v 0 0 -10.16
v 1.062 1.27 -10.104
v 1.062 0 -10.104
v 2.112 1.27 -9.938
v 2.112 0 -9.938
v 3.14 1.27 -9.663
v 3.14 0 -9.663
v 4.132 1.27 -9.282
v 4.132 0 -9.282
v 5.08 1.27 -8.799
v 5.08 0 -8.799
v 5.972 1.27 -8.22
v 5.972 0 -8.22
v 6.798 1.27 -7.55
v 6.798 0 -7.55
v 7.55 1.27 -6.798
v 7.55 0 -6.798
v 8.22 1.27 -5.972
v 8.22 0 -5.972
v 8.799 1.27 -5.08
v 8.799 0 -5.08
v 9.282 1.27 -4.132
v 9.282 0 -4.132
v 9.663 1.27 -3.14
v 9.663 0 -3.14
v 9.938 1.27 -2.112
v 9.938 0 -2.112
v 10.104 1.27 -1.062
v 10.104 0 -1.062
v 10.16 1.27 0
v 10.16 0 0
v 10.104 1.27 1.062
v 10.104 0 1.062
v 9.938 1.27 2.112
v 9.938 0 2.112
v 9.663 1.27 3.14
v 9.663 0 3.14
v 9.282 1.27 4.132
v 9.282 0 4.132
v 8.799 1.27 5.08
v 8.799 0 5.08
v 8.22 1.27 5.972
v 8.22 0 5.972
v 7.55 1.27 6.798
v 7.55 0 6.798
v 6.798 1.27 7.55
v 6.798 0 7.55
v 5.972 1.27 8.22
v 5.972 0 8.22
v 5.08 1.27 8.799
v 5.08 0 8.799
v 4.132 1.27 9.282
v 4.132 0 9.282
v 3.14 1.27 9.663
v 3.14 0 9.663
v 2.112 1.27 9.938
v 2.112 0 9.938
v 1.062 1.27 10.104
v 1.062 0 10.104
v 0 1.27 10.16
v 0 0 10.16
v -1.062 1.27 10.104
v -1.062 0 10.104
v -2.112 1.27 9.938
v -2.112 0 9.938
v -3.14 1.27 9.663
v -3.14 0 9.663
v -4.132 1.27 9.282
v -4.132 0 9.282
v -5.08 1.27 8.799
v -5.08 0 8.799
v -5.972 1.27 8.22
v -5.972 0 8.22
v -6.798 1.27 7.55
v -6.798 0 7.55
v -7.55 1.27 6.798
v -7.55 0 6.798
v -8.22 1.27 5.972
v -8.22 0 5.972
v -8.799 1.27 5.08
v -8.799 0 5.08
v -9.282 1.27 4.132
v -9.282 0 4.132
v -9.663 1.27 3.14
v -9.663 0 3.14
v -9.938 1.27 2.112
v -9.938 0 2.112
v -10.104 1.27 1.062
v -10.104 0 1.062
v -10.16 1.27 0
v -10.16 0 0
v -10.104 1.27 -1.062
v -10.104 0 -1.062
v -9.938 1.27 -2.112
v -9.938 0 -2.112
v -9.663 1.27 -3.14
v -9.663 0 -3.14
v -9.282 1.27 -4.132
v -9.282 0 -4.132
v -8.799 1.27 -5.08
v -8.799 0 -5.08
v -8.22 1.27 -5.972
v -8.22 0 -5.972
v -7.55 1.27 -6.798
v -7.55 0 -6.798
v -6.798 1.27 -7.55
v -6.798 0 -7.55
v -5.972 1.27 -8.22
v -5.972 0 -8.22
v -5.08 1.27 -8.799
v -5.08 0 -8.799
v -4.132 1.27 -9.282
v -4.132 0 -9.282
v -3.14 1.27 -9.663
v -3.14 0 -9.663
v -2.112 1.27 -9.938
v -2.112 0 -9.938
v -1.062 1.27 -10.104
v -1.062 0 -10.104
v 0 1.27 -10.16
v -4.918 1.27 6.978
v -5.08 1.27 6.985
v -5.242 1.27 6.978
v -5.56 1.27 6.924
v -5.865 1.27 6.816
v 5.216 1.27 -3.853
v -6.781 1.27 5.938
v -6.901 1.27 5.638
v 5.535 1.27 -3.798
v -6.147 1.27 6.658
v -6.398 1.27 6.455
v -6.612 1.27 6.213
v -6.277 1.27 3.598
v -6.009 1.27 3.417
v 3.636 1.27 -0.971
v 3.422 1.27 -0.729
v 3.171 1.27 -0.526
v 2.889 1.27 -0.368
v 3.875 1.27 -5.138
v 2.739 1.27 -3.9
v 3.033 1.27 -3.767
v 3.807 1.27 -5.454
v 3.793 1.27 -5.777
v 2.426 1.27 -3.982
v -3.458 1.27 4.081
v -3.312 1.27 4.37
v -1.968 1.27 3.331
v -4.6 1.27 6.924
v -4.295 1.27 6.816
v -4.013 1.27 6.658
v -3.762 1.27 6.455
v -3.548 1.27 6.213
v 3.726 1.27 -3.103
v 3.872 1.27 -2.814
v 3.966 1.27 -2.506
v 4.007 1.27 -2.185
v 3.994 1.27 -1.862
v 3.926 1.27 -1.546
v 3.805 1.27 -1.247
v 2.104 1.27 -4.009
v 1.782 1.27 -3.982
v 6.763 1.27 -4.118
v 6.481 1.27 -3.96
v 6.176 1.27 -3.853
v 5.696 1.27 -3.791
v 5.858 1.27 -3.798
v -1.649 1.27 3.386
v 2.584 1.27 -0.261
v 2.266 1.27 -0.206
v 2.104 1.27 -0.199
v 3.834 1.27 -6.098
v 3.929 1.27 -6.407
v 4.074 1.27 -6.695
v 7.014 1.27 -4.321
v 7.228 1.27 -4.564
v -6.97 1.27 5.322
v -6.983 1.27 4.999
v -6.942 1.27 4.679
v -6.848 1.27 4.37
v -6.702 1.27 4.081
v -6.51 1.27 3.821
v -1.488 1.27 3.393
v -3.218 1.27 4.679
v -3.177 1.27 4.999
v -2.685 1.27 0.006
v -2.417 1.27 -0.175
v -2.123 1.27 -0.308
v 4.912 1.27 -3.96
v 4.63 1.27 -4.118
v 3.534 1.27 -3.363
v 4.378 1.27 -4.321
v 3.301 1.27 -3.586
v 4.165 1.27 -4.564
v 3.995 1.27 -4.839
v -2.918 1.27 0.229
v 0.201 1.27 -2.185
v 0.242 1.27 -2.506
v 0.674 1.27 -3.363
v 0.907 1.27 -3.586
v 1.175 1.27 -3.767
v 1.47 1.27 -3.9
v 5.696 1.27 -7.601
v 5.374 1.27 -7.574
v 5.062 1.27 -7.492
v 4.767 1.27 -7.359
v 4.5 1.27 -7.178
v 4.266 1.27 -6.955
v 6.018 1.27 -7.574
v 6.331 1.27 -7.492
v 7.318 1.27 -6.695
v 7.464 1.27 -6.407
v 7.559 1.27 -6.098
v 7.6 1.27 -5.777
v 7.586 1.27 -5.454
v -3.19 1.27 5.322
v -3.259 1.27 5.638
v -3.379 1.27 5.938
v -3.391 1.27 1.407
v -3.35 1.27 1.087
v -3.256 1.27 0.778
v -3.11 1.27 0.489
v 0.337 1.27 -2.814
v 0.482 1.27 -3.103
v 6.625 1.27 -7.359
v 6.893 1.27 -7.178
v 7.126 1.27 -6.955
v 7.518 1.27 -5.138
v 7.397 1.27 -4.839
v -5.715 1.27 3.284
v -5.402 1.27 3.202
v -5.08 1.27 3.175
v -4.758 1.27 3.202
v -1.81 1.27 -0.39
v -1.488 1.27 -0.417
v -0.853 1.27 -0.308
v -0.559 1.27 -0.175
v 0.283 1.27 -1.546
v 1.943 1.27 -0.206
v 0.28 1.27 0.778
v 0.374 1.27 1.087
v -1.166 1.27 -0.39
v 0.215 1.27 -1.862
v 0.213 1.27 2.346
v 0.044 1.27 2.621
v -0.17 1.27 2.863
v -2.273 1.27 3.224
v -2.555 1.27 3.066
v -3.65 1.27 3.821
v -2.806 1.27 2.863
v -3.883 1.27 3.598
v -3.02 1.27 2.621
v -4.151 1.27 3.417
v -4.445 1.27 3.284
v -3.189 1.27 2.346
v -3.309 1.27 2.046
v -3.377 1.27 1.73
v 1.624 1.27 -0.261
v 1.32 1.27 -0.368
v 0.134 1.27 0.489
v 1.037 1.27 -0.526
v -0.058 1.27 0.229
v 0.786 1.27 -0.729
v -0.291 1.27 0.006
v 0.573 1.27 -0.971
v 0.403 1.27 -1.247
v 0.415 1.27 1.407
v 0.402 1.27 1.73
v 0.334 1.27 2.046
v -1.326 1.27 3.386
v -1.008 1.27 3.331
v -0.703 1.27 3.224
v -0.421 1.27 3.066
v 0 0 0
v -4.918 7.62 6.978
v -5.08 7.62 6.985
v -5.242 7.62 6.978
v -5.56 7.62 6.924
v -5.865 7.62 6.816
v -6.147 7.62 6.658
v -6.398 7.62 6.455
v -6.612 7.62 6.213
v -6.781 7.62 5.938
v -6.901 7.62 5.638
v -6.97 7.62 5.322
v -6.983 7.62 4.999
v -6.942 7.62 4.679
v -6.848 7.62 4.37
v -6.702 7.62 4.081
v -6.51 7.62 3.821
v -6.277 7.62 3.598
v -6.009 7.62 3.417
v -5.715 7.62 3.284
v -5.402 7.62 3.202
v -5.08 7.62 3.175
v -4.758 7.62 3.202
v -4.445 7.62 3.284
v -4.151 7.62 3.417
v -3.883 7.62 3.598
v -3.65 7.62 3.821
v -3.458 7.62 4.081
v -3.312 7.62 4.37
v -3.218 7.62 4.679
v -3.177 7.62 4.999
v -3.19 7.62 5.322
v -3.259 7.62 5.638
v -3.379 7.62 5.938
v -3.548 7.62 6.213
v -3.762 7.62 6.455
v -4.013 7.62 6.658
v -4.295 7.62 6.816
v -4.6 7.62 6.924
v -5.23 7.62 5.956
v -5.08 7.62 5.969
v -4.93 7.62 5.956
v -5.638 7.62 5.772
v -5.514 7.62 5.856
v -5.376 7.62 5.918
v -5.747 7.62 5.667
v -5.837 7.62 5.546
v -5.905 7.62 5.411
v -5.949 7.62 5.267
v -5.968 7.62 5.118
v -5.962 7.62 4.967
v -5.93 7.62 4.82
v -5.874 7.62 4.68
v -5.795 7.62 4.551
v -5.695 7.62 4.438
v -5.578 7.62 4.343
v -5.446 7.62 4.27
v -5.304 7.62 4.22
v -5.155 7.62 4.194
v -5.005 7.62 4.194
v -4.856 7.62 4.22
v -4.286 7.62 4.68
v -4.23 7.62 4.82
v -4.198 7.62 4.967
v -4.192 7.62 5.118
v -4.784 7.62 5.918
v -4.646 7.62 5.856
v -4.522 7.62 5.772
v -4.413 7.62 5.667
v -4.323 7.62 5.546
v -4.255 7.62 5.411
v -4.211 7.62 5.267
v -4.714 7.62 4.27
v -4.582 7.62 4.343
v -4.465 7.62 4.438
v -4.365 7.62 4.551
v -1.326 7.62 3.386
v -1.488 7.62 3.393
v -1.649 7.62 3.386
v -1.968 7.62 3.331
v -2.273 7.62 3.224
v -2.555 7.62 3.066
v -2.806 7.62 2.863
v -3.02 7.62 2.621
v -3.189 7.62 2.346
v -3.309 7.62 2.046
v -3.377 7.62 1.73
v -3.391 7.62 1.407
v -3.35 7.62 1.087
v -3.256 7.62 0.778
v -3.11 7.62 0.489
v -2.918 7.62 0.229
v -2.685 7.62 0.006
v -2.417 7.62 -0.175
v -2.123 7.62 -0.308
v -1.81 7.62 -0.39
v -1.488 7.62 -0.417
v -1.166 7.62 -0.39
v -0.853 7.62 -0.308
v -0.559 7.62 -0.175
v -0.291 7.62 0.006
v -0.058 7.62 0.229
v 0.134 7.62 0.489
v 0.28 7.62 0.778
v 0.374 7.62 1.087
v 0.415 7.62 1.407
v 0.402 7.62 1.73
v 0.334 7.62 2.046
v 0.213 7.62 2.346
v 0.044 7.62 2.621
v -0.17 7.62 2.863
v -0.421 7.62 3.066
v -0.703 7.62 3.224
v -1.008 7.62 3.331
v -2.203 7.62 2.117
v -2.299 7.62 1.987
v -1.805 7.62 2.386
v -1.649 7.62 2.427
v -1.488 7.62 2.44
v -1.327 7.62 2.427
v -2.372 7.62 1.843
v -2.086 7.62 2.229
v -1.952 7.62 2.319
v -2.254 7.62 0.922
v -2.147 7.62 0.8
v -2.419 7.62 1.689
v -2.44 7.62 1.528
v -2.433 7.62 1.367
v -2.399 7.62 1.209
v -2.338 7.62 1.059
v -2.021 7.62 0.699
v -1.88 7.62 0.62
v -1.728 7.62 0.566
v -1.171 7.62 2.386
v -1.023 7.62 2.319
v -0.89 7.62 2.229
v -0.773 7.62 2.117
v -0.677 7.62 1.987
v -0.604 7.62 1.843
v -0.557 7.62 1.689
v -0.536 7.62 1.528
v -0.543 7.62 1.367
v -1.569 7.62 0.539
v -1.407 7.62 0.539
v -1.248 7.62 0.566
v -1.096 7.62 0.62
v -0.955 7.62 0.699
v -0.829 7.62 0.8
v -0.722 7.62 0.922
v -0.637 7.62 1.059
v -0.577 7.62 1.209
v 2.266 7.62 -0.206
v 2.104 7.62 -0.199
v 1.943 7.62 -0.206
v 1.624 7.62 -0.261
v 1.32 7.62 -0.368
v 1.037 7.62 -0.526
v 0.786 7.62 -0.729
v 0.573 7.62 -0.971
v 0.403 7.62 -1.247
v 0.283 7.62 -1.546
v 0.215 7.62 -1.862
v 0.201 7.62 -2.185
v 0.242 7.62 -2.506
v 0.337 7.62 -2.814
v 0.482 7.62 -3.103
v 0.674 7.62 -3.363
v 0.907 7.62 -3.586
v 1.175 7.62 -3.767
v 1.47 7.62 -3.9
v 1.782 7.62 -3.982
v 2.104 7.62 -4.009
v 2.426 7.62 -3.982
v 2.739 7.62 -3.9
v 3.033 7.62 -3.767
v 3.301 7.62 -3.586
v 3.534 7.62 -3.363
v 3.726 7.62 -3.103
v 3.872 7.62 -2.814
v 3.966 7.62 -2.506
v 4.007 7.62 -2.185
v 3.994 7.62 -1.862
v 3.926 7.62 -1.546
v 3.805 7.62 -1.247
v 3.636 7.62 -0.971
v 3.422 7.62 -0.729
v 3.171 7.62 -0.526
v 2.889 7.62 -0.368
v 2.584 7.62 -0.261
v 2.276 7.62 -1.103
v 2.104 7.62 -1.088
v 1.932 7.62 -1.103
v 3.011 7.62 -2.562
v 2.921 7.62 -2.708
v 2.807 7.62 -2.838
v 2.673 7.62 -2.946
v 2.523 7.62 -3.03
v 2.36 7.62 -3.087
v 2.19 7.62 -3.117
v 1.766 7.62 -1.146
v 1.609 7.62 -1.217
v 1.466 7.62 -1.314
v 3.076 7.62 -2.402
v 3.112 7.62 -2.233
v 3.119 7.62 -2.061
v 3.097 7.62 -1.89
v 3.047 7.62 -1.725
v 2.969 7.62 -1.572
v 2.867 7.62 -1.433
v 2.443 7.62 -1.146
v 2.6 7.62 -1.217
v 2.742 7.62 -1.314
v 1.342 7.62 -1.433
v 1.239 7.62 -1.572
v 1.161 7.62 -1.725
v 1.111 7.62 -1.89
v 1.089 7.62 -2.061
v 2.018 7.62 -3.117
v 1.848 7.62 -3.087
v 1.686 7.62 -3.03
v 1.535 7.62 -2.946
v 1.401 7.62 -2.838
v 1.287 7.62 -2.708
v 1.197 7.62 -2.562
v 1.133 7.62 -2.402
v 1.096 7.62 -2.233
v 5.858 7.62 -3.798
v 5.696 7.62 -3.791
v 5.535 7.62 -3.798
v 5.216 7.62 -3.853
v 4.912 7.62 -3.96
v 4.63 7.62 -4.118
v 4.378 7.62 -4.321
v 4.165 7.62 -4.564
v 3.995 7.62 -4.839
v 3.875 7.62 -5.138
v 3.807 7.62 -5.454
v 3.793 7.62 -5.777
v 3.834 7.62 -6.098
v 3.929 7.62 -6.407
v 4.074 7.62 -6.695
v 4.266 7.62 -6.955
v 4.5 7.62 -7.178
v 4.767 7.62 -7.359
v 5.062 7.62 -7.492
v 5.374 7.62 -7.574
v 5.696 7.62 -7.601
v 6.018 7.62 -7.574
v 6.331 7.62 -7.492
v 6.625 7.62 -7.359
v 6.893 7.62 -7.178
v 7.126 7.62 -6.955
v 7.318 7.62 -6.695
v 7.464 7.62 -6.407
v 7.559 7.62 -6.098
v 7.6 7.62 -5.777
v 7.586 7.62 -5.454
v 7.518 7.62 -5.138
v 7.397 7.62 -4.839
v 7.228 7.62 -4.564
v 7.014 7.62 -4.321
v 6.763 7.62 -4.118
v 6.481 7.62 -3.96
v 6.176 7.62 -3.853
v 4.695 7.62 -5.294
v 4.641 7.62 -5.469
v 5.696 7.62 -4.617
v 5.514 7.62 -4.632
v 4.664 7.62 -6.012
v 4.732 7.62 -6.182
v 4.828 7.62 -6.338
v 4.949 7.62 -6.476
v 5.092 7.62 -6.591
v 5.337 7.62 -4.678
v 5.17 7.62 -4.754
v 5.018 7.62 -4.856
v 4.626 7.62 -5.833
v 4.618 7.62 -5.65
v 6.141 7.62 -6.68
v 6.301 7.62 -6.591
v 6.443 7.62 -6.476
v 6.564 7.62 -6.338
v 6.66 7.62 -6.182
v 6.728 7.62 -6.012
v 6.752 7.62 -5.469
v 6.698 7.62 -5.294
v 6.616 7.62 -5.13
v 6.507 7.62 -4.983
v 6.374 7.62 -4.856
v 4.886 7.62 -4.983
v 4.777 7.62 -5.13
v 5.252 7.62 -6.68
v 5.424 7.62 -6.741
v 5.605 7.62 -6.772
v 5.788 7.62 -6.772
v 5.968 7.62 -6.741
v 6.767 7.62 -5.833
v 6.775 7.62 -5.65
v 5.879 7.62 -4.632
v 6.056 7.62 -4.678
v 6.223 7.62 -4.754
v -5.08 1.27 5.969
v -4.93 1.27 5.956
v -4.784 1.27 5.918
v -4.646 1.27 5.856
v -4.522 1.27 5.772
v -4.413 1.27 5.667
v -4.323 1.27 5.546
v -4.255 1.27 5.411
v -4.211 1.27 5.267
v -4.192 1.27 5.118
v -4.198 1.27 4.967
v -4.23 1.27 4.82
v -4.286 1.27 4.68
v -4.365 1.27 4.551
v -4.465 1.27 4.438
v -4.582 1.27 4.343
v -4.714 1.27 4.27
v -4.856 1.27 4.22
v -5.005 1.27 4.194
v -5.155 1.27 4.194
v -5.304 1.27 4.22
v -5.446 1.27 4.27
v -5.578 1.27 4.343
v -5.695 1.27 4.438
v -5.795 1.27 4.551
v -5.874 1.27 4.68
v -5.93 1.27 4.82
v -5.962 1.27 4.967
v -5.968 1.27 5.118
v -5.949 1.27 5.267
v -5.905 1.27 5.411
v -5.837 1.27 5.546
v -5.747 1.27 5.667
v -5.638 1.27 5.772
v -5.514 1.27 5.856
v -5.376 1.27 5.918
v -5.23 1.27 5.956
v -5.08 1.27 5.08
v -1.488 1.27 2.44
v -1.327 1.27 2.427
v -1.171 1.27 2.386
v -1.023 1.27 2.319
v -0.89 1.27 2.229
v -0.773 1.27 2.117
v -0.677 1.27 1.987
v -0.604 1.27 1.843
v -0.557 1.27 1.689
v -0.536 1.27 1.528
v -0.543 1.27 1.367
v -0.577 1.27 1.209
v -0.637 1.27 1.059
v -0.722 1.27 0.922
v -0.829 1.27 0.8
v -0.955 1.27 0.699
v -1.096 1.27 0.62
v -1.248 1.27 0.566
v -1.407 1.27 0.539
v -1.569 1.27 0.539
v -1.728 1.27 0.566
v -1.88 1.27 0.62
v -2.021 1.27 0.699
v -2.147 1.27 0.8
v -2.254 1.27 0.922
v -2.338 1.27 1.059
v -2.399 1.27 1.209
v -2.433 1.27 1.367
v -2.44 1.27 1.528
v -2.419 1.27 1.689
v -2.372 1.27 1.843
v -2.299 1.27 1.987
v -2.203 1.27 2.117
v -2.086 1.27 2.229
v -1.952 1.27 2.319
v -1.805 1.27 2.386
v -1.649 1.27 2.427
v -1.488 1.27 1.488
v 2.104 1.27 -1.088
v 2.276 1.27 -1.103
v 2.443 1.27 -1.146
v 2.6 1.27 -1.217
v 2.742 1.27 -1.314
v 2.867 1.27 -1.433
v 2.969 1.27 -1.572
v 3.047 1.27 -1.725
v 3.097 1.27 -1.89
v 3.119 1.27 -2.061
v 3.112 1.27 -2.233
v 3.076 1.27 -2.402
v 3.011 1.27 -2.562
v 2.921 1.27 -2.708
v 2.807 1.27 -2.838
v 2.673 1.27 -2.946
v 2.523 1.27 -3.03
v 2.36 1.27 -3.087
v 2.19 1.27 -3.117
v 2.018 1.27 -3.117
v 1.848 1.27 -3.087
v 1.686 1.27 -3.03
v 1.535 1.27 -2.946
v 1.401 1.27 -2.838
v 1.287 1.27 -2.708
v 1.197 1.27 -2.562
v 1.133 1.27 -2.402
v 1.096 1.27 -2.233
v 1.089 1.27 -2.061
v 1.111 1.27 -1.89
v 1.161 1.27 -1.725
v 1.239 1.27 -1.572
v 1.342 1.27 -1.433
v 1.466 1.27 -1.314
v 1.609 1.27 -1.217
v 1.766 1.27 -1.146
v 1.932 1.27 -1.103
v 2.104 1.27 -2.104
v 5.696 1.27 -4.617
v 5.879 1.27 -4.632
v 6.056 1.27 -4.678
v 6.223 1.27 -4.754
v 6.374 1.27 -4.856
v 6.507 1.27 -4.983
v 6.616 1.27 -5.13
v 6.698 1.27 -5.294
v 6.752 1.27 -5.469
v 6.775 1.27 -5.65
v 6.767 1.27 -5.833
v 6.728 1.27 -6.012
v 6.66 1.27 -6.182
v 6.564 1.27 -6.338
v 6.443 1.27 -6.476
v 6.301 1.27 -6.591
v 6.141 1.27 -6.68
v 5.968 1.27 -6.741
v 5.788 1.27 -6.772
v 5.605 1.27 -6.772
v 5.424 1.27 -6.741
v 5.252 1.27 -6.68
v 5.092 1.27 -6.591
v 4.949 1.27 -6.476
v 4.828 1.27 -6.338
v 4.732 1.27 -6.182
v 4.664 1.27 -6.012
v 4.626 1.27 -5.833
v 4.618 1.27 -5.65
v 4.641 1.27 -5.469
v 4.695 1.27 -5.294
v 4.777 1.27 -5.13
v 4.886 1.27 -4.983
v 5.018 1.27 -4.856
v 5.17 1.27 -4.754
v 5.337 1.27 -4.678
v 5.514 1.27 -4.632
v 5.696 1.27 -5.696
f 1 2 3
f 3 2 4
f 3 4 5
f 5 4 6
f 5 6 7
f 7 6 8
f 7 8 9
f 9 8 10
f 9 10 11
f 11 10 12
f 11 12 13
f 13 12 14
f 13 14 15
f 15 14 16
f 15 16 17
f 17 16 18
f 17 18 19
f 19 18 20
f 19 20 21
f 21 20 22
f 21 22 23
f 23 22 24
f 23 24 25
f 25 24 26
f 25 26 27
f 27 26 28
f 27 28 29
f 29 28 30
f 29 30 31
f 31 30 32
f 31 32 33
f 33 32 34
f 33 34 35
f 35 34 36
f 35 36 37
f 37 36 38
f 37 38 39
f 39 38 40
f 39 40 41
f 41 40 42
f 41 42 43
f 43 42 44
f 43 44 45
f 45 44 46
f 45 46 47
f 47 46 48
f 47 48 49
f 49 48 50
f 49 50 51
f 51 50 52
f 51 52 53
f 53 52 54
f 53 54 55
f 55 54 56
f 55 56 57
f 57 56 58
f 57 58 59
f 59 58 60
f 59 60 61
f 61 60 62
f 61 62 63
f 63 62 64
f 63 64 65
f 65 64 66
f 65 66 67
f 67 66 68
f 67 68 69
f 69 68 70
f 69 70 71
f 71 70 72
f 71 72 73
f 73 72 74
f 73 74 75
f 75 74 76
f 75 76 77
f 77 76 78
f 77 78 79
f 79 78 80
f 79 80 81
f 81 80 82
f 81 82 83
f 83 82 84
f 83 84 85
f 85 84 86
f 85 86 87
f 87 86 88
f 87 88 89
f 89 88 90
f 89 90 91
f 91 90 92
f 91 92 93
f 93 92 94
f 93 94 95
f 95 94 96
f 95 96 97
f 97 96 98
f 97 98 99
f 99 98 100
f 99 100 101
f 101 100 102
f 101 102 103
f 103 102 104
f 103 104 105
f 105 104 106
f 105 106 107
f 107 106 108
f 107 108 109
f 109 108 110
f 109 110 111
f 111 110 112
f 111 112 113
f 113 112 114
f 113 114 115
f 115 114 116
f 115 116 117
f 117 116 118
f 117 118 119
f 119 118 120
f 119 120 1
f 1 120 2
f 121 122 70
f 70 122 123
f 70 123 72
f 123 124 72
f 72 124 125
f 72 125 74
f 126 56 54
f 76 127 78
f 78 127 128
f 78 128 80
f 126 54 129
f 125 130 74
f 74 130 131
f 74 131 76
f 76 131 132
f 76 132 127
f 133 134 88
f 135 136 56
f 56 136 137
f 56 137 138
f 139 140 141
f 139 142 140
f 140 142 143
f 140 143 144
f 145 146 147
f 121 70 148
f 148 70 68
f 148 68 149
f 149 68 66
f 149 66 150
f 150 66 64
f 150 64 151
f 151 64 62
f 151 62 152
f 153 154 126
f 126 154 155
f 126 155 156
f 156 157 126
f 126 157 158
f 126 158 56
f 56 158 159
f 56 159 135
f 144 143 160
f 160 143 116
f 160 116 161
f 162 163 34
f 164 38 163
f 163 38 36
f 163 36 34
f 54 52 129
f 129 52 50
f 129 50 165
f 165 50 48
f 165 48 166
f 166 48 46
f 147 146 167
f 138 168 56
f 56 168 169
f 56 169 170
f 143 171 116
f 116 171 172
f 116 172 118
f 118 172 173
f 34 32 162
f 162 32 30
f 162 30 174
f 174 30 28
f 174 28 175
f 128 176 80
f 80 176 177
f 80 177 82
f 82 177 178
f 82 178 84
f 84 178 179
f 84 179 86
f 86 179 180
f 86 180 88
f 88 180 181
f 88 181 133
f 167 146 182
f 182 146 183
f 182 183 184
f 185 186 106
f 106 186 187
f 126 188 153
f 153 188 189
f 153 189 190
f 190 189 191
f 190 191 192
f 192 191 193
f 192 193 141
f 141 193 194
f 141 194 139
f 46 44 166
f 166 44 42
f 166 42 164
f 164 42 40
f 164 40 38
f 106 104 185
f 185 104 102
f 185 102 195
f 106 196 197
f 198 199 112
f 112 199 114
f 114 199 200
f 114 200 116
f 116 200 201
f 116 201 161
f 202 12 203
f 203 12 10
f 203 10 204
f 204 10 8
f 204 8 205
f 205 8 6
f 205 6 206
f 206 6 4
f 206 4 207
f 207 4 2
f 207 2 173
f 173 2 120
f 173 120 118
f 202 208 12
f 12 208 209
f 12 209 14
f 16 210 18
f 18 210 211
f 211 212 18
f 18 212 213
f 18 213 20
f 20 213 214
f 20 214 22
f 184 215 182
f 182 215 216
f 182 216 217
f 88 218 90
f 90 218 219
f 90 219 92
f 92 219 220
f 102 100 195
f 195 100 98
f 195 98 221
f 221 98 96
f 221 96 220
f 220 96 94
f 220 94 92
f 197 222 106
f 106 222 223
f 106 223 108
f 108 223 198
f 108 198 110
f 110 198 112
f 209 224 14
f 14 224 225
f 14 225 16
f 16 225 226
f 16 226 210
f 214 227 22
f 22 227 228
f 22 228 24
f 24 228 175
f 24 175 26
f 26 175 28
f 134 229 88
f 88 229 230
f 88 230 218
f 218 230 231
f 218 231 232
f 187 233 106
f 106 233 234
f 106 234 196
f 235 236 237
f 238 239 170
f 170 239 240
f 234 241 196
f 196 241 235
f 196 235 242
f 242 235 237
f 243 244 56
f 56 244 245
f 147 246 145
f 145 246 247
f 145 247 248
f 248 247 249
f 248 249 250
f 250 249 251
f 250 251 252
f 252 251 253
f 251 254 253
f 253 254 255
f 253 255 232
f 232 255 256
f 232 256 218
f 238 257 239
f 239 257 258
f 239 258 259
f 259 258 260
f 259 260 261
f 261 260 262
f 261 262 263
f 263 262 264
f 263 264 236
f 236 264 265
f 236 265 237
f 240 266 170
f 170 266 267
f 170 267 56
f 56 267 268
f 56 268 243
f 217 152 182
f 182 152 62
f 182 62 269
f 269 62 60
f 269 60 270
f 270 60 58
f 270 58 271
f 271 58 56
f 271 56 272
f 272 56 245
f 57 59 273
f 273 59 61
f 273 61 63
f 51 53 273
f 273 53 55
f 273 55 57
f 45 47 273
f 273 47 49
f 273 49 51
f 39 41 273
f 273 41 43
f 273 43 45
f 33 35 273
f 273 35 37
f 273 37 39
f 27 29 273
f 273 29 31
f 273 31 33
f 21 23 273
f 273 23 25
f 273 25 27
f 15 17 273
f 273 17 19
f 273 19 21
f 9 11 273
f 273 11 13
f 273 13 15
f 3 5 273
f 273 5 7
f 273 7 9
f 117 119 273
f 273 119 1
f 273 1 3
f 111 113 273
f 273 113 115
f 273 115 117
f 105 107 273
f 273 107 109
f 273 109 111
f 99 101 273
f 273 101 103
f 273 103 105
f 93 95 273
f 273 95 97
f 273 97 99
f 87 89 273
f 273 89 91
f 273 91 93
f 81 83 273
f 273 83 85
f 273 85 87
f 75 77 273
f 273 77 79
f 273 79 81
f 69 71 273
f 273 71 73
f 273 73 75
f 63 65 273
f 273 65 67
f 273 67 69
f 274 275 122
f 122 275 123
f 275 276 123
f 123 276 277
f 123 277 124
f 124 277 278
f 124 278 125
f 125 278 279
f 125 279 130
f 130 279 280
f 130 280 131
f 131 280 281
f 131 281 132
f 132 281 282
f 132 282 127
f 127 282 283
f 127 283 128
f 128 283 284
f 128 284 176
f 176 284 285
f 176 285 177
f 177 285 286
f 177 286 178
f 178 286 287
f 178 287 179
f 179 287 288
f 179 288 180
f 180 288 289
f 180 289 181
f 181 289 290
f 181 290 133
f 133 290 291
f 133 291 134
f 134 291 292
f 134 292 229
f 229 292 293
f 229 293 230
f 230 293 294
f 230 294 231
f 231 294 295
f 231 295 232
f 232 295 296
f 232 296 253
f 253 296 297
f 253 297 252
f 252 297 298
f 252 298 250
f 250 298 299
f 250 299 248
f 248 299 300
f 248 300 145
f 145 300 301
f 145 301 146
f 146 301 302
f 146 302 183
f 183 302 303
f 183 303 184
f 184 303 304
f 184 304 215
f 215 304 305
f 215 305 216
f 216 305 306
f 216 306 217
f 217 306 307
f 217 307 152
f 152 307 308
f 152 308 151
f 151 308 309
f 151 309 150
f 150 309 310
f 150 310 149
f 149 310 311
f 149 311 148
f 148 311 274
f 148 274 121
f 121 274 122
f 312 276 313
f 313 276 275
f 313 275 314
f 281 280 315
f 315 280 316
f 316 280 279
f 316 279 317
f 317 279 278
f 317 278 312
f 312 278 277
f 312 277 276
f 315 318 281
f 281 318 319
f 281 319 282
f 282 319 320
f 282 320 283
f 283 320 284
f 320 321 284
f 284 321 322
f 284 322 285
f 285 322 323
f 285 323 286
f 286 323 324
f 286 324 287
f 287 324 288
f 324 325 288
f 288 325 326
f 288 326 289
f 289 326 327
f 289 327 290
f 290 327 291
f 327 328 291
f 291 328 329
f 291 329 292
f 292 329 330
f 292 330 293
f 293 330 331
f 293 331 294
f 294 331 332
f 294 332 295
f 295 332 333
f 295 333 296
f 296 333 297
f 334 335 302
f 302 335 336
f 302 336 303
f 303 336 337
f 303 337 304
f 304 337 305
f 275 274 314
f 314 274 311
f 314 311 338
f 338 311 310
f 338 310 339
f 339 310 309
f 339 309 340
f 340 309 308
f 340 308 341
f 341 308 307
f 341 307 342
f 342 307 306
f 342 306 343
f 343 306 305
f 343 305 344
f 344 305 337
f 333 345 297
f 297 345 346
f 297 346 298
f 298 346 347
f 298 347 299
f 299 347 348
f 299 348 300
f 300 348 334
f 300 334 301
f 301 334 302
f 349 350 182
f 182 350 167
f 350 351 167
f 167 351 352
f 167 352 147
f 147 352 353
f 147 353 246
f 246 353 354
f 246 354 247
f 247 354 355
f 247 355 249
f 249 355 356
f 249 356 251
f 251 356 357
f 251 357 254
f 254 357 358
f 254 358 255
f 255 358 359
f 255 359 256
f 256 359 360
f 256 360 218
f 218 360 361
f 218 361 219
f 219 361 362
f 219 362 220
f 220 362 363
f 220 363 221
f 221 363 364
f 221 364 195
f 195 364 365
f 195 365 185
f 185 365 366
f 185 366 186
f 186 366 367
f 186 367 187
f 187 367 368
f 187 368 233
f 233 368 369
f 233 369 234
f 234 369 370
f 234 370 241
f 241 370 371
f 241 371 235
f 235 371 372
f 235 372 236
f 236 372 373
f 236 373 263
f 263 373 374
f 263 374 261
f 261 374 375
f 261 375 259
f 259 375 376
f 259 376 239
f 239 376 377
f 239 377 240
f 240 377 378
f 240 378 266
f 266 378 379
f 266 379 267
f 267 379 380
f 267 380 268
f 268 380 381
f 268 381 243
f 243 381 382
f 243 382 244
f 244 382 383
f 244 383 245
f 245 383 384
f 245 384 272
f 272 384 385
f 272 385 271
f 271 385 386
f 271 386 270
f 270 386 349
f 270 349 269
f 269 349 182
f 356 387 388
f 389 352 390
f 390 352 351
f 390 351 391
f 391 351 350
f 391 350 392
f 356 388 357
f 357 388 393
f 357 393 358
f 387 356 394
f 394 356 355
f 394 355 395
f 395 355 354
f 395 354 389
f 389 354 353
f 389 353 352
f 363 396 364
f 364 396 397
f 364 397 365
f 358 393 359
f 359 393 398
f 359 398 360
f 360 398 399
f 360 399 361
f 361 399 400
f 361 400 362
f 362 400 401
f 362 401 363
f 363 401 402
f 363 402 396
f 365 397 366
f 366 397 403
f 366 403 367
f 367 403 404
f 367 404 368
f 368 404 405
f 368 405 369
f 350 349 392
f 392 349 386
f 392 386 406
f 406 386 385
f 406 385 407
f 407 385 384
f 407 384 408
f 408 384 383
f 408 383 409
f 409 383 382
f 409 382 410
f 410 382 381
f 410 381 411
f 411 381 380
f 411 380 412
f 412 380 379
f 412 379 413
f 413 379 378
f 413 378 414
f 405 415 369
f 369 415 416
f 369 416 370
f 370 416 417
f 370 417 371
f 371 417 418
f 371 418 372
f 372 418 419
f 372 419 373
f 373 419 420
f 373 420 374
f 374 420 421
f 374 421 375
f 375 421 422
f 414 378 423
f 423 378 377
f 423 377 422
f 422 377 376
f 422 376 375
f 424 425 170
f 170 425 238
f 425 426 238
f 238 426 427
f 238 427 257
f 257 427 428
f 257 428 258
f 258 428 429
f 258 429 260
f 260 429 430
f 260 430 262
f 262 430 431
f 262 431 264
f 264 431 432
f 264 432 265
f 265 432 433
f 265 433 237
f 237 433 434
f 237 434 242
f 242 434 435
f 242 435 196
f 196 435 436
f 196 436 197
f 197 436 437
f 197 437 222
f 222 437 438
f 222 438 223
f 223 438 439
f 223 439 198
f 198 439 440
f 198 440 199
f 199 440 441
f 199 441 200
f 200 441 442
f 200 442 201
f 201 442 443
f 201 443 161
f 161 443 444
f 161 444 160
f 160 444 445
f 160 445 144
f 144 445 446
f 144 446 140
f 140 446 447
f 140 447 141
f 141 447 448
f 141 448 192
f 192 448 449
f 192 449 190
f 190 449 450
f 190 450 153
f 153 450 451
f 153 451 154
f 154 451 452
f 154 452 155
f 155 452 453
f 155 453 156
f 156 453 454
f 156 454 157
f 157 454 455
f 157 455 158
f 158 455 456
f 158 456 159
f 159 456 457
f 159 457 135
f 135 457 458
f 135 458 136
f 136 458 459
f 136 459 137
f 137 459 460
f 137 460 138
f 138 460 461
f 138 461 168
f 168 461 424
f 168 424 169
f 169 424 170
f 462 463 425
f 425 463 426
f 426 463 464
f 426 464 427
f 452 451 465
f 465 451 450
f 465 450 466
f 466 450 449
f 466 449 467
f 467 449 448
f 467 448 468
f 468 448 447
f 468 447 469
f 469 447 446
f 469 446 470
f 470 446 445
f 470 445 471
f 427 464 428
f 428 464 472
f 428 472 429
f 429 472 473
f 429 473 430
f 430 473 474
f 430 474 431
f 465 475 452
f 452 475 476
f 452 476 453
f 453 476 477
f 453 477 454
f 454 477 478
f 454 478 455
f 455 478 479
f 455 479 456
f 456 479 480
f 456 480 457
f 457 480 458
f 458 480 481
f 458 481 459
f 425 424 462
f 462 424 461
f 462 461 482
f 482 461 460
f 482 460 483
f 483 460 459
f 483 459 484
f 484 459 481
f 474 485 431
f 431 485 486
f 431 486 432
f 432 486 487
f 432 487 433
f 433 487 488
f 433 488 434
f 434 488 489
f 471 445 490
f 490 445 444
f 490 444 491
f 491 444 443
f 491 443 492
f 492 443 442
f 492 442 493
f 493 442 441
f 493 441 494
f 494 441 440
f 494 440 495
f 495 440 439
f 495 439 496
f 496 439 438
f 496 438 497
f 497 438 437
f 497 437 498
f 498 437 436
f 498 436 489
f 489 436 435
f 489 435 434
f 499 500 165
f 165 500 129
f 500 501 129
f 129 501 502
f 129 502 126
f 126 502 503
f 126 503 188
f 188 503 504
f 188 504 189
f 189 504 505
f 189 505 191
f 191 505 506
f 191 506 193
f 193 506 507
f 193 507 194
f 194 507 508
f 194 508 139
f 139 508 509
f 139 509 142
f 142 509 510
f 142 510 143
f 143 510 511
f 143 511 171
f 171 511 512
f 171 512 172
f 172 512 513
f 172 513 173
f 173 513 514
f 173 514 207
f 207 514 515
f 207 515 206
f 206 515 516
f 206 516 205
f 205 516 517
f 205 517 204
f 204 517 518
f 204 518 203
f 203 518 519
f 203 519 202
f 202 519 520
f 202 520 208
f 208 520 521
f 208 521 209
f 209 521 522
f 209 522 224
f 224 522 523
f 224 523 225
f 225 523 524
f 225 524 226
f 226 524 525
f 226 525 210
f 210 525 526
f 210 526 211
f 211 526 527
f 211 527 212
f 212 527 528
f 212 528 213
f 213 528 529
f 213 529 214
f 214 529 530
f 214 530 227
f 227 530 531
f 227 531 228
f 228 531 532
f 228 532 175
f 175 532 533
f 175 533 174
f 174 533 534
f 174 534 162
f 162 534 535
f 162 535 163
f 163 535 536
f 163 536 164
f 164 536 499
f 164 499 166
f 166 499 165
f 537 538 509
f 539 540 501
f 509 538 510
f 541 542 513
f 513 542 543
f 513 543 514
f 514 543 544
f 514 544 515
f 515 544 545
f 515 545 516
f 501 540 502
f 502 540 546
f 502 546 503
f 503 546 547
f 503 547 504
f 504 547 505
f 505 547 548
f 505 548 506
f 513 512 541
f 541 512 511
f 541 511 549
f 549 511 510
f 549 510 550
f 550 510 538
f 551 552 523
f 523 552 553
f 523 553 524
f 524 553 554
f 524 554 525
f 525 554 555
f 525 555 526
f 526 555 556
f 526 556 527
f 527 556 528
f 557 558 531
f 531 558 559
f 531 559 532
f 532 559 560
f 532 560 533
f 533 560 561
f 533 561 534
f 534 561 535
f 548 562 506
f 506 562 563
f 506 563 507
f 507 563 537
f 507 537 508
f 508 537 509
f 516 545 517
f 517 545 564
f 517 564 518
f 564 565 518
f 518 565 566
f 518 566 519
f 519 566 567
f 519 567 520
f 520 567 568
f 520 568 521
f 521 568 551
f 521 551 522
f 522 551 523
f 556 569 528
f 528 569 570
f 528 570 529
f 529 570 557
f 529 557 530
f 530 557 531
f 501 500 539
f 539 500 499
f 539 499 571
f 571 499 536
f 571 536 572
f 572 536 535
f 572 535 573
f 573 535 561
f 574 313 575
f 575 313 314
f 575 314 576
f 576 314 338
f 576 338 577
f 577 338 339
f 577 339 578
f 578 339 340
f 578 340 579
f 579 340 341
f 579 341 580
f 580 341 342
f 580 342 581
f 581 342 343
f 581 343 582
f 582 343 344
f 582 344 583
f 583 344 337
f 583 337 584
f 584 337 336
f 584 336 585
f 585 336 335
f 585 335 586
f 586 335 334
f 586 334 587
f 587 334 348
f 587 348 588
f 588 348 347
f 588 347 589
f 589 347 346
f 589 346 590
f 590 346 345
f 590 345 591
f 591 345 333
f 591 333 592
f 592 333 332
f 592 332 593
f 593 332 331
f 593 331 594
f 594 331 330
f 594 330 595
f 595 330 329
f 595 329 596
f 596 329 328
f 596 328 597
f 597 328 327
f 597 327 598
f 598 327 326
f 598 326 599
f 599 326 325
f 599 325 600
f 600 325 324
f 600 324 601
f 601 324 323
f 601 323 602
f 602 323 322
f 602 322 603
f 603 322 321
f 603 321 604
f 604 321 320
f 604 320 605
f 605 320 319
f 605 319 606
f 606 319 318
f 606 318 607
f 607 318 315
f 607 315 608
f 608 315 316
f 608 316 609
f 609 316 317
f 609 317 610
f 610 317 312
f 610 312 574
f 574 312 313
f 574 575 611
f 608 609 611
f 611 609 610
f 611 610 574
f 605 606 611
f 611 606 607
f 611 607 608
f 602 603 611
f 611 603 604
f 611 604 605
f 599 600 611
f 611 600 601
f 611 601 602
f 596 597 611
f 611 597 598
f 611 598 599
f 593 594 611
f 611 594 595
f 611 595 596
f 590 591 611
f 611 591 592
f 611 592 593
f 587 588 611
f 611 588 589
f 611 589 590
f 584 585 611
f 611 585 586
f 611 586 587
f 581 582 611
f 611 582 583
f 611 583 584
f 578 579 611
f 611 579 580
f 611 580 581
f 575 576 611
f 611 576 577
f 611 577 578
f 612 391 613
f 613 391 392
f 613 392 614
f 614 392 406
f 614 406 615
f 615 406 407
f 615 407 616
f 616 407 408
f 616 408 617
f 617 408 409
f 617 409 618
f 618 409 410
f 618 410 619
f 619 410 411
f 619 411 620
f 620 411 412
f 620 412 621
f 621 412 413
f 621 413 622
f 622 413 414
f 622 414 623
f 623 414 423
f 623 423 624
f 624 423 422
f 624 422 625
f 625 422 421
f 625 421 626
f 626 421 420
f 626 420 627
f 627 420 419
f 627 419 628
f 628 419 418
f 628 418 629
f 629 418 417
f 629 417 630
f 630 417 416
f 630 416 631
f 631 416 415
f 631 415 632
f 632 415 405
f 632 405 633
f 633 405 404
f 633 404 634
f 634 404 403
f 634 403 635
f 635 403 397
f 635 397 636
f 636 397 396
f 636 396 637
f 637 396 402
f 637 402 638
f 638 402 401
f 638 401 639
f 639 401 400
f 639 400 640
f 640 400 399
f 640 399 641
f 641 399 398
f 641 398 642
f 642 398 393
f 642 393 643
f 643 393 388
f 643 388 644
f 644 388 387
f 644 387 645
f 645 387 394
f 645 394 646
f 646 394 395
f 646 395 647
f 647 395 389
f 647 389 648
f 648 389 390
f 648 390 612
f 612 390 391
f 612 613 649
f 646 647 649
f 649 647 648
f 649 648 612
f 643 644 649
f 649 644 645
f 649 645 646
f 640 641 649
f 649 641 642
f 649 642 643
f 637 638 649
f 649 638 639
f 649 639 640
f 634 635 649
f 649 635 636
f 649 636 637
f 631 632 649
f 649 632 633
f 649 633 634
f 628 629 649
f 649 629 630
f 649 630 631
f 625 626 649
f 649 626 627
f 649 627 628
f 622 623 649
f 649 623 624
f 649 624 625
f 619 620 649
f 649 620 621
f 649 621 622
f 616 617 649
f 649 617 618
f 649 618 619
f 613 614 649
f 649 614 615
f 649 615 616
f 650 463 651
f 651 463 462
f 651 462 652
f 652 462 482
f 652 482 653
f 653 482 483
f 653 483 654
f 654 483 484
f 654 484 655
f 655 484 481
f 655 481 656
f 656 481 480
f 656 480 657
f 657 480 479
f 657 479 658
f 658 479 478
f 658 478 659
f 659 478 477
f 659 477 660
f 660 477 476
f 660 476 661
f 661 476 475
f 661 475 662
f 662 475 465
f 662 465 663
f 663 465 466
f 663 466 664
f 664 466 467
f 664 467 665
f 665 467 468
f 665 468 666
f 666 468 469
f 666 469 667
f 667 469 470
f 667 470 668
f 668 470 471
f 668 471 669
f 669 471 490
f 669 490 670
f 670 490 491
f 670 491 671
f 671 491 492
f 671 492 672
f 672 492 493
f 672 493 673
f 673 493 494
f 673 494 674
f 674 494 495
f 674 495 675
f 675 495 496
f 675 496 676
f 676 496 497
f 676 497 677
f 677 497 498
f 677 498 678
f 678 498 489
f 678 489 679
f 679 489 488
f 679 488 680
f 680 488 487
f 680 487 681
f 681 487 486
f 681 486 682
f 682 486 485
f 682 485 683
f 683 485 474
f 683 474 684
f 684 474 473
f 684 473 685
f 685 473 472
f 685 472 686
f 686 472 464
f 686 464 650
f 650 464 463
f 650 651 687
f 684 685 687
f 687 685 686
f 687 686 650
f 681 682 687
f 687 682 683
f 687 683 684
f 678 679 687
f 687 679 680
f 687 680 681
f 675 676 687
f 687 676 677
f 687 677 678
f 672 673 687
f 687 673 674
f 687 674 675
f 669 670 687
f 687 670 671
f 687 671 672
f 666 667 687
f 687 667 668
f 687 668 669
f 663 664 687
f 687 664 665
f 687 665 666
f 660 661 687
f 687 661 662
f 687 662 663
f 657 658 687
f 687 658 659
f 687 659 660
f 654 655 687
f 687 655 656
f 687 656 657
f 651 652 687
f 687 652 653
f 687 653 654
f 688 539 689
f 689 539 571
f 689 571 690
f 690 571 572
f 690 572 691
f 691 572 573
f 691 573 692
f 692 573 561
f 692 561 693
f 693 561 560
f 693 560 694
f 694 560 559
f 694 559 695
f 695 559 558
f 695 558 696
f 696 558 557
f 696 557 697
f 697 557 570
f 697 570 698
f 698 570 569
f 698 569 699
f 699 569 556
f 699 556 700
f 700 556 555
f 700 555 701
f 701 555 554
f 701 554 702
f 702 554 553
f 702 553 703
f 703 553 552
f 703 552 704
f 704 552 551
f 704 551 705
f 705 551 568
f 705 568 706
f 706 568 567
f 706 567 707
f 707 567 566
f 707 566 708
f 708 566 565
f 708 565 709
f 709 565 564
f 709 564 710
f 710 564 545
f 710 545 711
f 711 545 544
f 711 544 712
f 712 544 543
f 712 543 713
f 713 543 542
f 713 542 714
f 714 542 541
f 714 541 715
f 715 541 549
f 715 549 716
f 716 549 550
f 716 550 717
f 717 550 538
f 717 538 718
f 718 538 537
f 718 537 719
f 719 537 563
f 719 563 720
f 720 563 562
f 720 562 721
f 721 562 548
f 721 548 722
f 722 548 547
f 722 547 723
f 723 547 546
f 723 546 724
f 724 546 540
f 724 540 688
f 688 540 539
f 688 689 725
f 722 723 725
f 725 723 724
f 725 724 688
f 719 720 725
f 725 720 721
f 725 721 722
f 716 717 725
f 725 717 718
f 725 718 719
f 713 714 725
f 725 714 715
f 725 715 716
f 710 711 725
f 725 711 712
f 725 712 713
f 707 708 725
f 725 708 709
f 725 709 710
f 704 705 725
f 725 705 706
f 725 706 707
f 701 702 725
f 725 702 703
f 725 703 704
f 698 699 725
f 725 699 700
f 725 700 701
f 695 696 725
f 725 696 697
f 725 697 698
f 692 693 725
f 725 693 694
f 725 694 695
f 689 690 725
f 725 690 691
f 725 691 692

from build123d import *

# Parameters (mm, degrees)
SKETCH3_R           = 10.16
BOSS_EXTRUDE1_DEPTH = 1.27
SKETCH4_R           = 1.905
BOSS_EXTRUDE2_DEPTH = 6.35
LPATTERN1_COUNT     = 4
LPATTERN1_PITCH     = 5.08
SKETCH6_R           = 0.889
CUT_EXTRUDE1_DEPTH  = 6.35
SKETCH7_R           = 0.9525
CUT_EXTRUDE2_DEPTH  = 6.35
SKETCH8_R           = 1.016
CUT_EXTRUDE3_DEPTH  = 6.35
SKETCH9_R           = 1.0795
CUT_EXTRUDE4_DEPTH  = 6.35


with BuildPart() as part:
    # Sketch3 → Boss-Extrude1 (new body)
    with BuildSketch(Plane(origin=(0, 0, 0), x_dir=(1, 0, 0), z_dir=(0, 1, 0))):
        with Locations(Location((0, 0, 0), (0, 0, 270))):
            Circle(SKETCH3_R)
    extrude(amount=BOSS_EXTRUDE1_DEPTH)

    # Sketch4 → Boss-Extrude2 (add)
    with BuildSketch(Plane(origin=(0, 1.27, 0), x_dir=(1, 0, 0), z_dir=(0, 1, 0))):
        with Locations(Location((-5.08, -5.08, 0), (0, 0, 270))):
            Circle(SKETCH4_R)
    boss_extrude2 = extrude(amount=BOSS_EXTRUDE2_DEPTH)

    # LPattern1: Boss-Extrude2 ×4
    with Locations(*[Vector(0.7071067811865476, 0, -0.7071067811865476) * (i * LPATTERN1_PITCH) for i in range(1, LPATTERN1_COUNT)]):
        add(boss_extrude2)

    # Sketch6 → Cut-Extrude1 (cut)
    with BuildSketch(Plane(origin=(0, 7.62, 0), x_dir=(1, 0, 0), z_dir=(0, 1, 0))):
        with Locations(Location((-5.08, -5.08, 0), (0, 0, 270))):
            Circle(SKETCH6_R)
    extrude(amount=-CUT_EXTRUDE1_DEPTH, mode=Mode.SUBTRACT)

    # Sketch7 → Cut-Extrude2 (cut)
    with BuildSketch(Plane(origin=(0, 7.62, 0), x_dir=(1, 0, 0), z_dir=(0, 1, 0))):
        with Locations(Location((-1.487897552, -1.487897552, 0), (0, 0, 270))):
            Circle(SKETCH7_R)
    extrude(amount=-CUT_EXTRUDE2_DEPTH, mode=Mode.SUBTRACT)

    # Sketch8 → Cut-Extrude3 (cut)
    with BuildSketch(Plane(origin=(0, 7.62, 0), x_dir=(1, 0, 0), z_dir=(0, 1, 0))):
        with Locations(Location((2.104204897, 2.104204897, 0), (0, 0, 270))):
            Circle(SKETCH8_R)
    extrude(amount=-CUT_EXTRUDE3_DEPTH, mode=Mode.SUBTRACT)

    # Sketch9 → Cut-Extrude4 (cut)
    with BuildSketch(Plane(origin=(0, 7.62, 0), x_dir=(1, 0, 0), z_dir=(0, 1, 0))):
        with Locations(Location((5.696307345, 5.696307345, 0), (0, 0, 270))):
            Circle(SKETCH9_R)
    extrude(amount=-CUT_EXTRUDE4_DEPTH, mode=Mode.SUBTRACT)


solid = part.part
